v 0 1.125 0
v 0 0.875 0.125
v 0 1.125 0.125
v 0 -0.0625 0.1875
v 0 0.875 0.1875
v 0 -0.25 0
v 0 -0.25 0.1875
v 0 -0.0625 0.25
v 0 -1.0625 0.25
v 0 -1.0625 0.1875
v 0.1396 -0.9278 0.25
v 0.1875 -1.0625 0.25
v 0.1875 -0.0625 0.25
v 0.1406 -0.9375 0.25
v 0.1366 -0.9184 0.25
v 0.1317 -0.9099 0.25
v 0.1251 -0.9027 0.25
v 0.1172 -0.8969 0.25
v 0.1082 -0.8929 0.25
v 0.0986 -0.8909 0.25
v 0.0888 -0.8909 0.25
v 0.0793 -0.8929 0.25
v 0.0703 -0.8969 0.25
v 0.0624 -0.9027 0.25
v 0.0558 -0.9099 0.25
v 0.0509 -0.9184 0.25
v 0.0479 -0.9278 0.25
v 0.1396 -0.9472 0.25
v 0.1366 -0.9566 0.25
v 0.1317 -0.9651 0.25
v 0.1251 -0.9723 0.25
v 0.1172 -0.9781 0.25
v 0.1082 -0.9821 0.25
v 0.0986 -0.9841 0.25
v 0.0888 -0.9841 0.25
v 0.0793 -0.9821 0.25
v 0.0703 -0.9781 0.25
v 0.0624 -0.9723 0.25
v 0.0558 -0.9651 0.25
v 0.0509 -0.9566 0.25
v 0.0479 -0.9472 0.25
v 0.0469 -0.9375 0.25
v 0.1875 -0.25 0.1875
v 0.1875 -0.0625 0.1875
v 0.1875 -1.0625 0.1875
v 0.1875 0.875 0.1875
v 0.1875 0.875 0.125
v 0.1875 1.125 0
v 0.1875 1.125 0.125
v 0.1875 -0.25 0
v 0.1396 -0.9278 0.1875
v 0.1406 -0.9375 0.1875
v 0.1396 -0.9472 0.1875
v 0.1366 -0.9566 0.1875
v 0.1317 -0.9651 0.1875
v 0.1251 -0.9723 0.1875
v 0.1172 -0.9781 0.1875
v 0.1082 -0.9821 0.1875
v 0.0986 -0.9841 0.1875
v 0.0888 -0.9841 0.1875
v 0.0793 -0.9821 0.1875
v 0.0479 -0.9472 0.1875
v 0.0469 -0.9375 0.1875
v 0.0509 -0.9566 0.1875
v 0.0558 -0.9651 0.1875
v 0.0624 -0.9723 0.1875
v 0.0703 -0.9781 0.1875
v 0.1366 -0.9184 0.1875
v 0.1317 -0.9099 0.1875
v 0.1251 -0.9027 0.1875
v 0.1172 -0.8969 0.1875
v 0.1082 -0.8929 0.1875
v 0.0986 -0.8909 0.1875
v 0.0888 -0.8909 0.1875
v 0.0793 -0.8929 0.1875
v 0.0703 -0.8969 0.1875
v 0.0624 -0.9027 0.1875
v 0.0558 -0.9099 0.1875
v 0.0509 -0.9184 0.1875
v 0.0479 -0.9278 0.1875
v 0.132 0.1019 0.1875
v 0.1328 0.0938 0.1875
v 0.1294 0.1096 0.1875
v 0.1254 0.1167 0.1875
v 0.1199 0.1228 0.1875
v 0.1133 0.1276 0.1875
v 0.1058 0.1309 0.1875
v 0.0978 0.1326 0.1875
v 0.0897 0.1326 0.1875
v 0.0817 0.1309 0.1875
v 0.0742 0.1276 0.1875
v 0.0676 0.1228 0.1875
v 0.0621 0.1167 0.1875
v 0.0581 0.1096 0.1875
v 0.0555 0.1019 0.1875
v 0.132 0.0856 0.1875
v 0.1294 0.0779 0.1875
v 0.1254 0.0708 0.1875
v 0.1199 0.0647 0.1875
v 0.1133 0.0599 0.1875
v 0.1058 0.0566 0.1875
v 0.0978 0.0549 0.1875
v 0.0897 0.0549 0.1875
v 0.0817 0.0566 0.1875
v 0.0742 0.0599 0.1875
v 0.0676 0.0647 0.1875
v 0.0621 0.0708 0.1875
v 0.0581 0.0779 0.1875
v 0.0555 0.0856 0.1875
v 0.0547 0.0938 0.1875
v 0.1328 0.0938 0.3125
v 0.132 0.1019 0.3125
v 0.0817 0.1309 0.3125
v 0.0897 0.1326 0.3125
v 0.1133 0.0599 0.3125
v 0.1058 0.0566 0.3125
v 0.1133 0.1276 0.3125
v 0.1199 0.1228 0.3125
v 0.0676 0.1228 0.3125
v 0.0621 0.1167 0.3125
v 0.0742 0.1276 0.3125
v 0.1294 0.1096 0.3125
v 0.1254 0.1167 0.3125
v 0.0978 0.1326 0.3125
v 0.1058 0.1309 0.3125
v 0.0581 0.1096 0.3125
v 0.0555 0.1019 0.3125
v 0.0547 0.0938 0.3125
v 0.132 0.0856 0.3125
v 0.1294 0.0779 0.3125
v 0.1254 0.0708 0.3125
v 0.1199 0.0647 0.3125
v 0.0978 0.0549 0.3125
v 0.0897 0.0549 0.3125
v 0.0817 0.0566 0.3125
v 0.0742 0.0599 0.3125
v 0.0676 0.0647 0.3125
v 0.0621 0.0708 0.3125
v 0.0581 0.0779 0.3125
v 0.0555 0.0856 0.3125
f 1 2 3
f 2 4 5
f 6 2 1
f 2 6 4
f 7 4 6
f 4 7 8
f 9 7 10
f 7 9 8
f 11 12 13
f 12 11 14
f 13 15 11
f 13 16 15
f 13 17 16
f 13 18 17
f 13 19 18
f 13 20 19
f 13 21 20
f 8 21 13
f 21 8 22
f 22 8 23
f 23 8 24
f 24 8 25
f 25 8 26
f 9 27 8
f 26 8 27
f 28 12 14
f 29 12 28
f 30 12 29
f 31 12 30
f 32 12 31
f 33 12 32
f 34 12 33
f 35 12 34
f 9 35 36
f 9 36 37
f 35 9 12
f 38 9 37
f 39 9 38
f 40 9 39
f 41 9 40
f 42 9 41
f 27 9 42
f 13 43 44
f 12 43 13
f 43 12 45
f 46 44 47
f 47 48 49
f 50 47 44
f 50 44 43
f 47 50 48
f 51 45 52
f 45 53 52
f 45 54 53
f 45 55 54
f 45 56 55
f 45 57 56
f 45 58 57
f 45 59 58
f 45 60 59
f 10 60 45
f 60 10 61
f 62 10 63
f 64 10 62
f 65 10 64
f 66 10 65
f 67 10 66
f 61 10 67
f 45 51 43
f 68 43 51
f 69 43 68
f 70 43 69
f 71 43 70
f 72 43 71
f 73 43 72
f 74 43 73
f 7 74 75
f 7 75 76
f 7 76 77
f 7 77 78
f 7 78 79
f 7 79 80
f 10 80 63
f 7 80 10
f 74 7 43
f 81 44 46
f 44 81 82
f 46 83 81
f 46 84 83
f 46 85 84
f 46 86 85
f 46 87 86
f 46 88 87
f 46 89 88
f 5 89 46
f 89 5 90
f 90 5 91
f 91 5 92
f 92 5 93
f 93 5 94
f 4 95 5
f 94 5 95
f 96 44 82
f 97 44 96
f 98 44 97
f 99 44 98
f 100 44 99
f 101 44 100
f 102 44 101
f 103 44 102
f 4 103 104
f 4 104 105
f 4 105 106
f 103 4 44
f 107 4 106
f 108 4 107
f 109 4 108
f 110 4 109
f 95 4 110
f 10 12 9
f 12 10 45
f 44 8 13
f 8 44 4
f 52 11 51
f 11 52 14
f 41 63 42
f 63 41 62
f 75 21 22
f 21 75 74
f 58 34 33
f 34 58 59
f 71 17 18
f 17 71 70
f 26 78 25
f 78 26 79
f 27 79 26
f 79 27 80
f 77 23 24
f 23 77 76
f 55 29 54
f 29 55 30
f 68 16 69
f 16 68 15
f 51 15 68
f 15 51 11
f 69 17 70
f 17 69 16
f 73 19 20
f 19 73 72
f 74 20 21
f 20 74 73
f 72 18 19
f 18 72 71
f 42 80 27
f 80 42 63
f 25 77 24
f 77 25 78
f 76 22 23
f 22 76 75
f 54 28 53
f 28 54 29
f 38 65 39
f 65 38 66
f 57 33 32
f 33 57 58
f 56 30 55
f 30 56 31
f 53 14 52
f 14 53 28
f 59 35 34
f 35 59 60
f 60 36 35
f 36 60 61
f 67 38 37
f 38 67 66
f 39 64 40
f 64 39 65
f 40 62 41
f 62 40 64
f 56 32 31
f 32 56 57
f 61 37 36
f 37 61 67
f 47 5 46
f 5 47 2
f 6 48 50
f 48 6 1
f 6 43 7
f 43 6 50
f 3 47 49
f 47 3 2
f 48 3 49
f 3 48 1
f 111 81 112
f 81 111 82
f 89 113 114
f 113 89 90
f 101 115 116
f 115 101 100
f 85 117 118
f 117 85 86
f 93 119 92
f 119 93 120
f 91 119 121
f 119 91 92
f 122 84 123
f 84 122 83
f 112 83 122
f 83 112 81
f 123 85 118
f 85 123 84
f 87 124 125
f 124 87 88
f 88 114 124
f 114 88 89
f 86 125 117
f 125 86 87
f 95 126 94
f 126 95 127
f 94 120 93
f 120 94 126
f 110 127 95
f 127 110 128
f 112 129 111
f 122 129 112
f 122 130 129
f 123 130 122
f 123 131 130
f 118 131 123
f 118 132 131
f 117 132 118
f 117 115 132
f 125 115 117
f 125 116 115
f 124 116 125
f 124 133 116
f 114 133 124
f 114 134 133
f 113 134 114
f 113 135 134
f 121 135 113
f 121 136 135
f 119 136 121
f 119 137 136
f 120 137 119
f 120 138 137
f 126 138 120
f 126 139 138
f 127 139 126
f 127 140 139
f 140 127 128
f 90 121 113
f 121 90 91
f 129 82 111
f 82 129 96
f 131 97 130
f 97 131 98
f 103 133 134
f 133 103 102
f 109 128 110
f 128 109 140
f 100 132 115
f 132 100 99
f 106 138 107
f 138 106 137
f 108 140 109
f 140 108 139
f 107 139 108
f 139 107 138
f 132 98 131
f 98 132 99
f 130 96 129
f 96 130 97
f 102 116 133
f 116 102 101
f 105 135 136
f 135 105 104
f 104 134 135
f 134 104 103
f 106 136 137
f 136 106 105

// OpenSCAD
t=14/16;
module pi_support() {
    translate([0,t,0]) cube( [3/16, 4/16, 2/16]);
    translate([3/32,3/32,0]) cylinder(d=5/64,h=5/16,$fn=30);
    translate([0,-4/16,0]) {
        cube([3/16, t + 4/16, 3/16]);
        difference() {
            translate([0,- 13/16,3/16]) cube([3/16,1,1/16]);
            translate([3/32,-11/16,0]) cylinder(d=3/32, h=1, $fn=30);
        }
    }
}

pi_support();
